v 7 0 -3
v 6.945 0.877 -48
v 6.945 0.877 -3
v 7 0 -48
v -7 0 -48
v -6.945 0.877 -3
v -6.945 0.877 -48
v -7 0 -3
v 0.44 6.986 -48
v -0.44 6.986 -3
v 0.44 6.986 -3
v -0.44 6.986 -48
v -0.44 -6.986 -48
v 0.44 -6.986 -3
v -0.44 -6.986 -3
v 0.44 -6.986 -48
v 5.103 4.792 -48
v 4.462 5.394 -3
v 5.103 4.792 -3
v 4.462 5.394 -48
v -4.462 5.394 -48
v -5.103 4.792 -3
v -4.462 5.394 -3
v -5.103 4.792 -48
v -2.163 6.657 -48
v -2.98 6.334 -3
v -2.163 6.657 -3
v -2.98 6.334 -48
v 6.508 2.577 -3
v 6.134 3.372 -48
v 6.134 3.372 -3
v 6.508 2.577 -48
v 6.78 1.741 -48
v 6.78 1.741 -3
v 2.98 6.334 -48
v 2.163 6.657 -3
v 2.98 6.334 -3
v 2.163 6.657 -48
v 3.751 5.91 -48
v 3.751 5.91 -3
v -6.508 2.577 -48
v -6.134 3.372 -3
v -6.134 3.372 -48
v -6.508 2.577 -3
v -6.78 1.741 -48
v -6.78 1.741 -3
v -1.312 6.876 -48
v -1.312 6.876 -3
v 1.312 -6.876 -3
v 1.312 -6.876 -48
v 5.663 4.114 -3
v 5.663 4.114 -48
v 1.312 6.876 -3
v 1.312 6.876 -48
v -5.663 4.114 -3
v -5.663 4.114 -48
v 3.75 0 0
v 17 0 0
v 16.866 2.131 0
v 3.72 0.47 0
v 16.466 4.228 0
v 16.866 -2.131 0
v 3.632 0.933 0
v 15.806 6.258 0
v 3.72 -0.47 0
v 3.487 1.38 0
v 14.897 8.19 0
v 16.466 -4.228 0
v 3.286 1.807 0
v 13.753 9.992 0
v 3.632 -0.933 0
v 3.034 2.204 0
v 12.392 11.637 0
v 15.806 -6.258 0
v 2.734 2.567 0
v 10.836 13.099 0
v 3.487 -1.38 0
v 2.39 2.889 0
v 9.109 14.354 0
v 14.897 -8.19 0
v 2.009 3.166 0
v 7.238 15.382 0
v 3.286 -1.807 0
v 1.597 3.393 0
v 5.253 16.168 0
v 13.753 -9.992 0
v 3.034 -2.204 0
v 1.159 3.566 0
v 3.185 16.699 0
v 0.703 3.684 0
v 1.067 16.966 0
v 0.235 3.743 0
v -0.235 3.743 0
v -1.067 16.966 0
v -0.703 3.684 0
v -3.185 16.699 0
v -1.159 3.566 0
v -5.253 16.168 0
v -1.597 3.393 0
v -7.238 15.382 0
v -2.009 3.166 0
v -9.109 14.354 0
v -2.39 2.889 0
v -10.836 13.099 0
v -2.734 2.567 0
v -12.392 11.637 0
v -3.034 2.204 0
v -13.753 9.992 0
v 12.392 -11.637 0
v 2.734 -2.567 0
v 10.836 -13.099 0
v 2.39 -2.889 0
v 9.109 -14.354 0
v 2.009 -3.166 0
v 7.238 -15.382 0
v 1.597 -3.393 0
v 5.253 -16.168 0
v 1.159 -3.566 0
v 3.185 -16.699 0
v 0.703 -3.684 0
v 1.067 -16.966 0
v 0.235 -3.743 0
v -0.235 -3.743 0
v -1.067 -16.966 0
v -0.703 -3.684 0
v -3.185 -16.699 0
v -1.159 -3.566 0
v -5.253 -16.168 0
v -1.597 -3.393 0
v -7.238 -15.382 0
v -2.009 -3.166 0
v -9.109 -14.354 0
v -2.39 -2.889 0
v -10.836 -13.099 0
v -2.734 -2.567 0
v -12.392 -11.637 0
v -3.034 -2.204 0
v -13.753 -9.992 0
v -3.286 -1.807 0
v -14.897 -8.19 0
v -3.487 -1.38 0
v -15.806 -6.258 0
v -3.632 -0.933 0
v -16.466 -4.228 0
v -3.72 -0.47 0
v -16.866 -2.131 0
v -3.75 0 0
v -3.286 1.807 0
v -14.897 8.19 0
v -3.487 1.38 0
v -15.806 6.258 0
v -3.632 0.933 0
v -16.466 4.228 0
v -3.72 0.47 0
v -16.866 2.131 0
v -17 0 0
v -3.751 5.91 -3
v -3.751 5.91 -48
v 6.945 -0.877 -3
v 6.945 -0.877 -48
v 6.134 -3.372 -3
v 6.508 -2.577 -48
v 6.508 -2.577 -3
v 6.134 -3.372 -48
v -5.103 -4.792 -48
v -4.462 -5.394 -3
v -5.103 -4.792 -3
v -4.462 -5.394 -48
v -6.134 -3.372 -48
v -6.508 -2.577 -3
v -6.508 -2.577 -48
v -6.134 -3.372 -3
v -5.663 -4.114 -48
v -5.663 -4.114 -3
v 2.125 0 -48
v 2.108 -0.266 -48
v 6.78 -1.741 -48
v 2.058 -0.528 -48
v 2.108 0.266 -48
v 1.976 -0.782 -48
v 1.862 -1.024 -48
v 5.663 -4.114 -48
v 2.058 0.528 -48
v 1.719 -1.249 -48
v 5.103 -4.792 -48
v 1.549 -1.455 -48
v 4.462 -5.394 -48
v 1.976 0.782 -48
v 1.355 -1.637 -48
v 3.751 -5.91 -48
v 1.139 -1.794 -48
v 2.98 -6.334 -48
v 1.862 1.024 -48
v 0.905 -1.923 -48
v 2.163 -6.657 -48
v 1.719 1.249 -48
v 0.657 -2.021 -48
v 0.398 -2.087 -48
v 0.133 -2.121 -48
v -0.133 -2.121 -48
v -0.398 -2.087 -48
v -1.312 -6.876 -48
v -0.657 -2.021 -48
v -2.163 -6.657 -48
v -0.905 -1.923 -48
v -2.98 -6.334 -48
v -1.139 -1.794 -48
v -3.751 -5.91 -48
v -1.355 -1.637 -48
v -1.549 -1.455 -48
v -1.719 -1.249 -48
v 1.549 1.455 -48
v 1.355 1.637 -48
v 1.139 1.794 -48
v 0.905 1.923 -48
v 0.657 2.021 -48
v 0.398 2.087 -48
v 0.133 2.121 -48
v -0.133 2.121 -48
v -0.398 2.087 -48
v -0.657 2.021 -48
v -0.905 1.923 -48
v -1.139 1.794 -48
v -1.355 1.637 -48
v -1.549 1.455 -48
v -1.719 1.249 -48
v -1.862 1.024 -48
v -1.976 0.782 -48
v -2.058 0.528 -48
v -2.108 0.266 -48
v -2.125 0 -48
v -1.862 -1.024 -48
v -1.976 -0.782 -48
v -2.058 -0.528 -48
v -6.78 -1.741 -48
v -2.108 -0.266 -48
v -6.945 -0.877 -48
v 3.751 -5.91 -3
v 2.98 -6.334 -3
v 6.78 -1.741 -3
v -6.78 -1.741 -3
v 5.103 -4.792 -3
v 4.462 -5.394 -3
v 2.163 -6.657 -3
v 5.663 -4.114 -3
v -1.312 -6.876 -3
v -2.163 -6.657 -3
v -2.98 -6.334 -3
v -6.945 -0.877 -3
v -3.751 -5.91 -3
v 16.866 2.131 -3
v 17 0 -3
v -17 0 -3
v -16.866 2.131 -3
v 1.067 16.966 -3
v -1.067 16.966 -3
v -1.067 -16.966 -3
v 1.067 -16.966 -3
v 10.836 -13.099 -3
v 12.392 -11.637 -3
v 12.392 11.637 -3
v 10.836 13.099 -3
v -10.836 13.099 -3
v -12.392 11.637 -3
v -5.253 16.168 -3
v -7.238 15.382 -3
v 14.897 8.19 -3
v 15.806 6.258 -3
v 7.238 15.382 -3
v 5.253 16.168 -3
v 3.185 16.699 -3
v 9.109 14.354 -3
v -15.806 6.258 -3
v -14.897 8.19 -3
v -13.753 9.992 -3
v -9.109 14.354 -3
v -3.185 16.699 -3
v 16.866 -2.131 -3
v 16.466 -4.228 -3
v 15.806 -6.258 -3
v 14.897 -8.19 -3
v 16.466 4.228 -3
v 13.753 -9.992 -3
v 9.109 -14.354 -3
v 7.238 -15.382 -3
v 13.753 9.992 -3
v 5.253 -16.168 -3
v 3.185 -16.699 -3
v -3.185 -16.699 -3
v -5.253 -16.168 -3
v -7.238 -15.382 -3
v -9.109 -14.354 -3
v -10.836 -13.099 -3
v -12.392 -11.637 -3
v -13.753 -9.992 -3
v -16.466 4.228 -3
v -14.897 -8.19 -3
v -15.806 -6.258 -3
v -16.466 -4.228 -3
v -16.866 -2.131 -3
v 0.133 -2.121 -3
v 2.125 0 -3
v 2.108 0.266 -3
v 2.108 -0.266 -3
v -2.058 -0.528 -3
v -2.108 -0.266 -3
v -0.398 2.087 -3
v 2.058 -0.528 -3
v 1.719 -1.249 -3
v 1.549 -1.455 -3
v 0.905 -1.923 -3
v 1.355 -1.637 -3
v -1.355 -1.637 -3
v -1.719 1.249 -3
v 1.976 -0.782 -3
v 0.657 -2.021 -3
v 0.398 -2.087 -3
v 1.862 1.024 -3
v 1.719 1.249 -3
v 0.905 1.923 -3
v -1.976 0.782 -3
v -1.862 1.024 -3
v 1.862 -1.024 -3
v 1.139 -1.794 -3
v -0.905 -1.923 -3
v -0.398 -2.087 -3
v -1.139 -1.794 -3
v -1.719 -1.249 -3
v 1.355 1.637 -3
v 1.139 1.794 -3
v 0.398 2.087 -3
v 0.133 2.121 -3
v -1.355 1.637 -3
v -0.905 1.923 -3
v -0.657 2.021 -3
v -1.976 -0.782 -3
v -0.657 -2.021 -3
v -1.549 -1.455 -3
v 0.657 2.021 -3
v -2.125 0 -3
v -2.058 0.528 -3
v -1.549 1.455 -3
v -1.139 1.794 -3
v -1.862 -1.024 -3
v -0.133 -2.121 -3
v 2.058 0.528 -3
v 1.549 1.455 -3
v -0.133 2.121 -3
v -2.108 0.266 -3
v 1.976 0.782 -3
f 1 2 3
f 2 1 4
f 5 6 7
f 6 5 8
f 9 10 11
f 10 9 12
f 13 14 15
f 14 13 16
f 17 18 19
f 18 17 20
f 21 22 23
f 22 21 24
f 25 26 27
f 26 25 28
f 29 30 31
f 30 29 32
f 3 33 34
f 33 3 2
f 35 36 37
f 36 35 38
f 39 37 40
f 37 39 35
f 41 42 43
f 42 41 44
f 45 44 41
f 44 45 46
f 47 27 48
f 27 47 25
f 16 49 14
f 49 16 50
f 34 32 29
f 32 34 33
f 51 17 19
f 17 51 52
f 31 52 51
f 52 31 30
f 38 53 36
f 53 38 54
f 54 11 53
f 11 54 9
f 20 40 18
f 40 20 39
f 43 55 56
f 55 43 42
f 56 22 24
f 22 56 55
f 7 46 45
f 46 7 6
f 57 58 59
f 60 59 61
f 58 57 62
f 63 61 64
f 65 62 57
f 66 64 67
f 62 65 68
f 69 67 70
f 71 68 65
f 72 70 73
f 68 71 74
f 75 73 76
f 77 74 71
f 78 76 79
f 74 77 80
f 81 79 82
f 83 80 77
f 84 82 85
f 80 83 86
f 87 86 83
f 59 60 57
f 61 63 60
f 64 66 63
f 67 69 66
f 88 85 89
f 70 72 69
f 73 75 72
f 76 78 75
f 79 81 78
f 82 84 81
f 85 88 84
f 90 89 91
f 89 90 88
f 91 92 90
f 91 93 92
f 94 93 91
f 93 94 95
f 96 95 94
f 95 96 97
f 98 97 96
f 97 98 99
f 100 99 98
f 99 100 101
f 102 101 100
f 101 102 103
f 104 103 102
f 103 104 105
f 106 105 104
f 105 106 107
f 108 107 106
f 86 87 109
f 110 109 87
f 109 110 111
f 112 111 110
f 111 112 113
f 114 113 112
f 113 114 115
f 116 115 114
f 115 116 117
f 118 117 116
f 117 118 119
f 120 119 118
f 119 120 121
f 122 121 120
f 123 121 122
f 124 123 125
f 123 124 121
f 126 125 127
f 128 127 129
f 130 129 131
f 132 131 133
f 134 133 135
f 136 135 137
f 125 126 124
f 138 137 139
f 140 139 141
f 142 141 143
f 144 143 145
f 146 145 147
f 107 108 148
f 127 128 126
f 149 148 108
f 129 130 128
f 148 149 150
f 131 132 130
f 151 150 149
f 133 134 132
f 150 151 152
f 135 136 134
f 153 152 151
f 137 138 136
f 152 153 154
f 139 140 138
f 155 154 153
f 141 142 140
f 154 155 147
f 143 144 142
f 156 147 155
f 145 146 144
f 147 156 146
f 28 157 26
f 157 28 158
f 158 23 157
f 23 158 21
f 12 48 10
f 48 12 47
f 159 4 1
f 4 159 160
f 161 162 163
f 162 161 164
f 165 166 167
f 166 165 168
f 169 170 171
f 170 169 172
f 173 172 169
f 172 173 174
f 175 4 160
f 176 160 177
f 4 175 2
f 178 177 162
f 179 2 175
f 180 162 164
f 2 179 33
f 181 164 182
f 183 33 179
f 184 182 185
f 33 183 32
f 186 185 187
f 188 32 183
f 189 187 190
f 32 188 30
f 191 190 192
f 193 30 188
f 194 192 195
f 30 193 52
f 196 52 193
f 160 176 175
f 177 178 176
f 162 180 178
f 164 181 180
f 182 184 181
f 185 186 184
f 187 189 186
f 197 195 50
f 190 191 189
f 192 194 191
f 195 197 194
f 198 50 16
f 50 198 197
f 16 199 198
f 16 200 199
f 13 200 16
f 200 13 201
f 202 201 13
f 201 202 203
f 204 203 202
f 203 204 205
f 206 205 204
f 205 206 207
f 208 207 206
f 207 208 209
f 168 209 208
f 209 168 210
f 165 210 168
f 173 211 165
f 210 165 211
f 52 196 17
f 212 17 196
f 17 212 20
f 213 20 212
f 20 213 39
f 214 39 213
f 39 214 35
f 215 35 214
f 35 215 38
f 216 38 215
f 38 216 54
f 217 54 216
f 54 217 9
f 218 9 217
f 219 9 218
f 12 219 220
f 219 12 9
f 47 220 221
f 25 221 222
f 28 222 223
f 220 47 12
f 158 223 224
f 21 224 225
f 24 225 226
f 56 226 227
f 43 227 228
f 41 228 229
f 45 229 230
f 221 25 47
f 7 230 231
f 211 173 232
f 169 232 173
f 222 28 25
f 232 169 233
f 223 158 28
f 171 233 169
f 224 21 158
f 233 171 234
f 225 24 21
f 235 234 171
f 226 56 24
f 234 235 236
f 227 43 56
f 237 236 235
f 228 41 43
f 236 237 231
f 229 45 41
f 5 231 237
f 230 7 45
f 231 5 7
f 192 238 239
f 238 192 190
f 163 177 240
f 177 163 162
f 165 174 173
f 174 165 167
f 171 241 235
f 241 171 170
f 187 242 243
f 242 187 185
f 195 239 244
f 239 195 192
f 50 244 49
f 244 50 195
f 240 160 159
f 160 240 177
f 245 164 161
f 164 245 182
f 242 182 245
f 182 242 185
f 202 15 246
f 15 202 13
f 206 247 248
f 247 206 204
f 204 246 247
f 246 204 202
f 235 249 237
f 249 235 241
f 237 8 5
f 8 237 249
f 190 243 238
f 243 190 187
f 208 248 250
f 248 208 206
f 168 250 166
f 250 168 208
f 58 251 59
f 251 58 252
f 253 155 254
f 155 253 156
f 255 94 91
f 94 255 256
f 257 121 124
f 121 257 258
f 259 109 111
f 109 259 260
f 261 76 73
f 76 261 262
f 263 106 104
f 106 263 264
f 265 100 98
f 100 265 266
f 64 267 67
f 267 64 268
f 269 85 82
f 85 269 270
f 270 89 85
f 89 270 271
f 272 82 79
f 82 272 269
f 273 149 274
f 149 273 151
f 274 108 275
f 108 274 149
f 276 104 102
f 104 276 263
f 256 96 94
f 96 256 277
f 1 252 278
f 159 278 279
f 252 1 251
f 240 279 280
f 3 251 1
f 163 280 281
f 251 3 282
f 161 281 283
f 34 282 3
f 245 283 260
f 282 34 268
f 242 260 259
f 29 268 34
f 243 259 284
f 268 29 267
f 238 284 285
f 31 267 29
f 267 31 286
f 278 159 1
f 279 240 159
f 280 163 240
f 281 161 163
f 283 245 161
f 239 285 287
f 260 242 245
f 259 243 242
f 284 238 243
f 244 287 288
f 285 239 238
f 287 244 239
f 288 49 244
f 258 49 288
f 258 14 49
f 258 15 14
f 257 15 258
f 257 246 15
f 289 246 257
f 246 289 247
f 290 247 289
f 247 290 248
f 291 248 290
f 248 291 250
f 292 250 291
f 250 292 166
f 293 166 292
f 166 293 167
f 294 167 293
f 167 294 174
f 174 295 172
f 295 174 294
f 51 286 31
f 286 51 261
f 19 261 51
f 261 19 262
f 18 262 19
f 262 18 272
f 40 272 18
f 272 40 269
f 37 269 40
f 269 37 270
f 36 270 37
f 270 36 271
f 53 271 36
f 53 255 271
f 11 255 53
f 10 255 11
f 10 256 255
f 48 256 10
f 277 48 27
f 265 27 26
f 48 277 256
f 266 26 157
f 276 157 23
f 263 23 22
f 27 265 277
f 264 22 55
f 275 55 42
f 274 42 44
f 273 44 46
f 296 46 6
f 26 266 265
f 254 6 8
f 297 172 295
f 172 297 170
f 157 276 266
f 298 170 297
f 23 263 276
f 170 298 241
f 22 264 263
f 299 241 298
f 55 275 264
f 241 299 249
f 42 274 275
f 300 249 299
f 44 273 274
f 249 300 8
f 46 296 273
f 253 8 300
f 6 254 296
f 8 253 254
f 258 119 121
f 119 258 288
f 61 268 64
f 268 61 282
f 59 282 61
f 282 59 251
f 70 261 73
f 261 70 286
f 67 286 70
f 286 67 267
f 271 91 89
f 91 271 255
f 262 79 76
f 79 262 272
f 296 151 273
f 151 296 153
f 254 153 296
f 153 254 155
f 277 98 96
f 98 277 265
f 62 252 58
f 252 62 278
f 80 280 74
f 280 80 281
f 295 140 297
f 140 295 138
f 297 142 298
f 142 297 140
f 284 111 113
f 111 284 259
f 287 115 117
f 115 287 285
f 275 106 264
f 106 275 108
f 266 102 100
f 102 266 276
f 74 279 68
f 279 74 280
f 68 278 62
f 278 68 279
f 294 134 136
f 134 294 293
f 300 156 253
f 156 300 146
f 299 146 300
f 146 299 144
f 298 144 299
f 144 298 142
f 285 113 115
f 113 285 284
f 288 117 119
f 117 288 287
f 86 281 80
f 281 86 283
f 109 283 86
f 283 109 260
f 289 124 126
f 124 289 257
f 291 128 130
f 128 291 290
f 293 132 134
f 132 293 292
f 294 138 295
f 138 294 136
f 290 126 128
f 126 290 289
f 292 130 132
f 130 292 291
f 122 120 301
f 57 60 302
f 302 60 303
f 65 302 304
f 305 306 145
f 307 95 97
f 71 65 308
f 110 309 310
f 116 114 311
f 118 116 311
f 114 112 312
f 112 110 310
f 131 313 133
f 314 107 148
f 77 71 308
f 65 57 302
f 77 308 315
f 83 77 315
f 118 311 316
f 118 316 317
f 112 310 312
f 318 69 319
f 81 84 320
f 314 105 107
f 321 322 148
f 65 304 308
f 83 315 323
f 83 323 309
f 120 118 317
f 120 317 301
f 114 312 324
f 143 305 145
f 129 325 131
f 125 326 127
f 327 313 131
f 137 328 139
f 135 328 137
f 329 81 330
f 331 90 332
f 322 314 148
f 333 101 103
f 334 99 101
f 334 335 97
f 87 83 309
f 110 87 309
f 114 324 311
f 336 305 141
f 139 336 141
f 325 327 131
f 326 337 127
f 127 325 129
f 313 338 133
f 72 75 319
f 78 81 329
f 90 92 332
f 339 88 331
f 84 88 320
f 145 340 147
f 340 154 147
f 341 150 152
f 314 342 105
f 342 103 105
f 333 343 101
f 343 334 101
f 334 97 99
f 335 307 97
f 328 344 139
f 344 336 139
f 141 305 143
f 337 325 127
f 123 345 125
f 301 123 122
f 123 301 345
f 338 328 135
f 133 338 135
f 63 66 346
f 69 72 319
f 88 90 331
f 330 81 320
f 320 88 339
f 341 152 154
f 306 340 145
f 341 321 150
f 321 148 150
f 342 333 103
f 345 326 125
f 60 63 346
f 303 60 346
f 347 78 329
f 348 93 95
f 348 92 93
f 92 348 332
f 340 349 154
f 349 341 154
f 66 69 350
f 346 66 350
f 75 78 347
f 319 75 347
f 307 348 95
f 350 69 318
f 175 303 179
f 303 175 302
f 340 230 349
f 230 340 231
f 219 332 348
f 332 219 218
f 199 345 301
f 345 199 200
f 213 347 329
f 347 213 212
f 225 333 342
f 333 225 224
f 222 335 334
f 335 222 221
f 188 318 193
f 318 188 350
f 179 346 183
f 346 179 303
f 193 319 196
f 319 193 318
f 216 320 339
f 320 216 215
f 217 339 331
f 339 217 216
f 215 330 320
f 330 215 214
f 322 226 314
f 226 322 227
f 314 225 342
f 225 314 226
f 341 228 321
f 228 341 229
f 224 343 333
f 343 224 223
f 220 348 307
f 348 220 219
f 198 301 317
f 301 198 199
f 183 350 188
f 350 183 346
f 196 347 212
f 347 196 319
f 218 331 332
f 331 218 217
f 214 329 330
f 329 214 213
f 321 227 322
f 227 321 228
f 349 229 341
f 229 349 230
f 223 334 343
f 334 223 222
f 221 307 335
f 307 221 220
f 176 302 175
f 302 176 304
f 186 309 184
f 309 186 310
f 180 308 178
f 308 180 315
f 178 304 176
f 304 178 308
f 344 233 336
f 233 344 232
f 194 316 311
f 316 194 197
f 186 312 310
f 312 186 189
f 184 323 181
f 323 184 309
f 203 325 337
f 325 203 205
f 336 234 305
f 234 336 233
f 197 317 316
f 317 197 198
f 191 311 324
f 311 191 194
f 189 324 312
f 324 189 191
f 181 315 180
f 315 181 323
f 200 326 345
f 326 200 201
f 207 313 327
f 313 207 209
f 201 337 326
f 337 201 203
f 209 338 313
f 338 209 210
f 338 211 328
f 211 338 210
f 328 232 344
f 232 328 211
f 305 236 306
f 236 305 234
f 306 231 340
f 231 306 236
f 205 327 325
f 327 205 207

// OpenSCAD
$fn = 50;


difference() {
	union() {
		translate(v = [0, 0, -48.0000000000]) {
			cylinder(h = 48, r = 7.0000000000);
		}
		translate(v = [0, 0, -3.0000000000]) {
			cylinder(h = 3, r = 17.0000000000);
		}
	}
	union() {
		translate(v = [0, 0, 0]) {
			rotate(a = [0, 0, 0]) {
				difference() {
					union() {
						#translate(v = [0, 0, -48.0000000000]) {
							cylinder(h = 48, r = 2.0000000000);
						}
						#translate(v = [0, 0, -3]) {
							cylinder(h = 3, r = 7.0000000000, r1 = 2.1250000000, r2 = 3.7500000000);
						}
						#translate(v = [0, 0, -48.0000000000]) {
							cylinder(h = 48, r = 2.1250000000);
						}
						#translate(v = [0, 0, -48.0000000000]) {
							cylinder(h = 48, r = 2.0000000000);
						}
					}
					union();
				}
			}
		}
	}
}
